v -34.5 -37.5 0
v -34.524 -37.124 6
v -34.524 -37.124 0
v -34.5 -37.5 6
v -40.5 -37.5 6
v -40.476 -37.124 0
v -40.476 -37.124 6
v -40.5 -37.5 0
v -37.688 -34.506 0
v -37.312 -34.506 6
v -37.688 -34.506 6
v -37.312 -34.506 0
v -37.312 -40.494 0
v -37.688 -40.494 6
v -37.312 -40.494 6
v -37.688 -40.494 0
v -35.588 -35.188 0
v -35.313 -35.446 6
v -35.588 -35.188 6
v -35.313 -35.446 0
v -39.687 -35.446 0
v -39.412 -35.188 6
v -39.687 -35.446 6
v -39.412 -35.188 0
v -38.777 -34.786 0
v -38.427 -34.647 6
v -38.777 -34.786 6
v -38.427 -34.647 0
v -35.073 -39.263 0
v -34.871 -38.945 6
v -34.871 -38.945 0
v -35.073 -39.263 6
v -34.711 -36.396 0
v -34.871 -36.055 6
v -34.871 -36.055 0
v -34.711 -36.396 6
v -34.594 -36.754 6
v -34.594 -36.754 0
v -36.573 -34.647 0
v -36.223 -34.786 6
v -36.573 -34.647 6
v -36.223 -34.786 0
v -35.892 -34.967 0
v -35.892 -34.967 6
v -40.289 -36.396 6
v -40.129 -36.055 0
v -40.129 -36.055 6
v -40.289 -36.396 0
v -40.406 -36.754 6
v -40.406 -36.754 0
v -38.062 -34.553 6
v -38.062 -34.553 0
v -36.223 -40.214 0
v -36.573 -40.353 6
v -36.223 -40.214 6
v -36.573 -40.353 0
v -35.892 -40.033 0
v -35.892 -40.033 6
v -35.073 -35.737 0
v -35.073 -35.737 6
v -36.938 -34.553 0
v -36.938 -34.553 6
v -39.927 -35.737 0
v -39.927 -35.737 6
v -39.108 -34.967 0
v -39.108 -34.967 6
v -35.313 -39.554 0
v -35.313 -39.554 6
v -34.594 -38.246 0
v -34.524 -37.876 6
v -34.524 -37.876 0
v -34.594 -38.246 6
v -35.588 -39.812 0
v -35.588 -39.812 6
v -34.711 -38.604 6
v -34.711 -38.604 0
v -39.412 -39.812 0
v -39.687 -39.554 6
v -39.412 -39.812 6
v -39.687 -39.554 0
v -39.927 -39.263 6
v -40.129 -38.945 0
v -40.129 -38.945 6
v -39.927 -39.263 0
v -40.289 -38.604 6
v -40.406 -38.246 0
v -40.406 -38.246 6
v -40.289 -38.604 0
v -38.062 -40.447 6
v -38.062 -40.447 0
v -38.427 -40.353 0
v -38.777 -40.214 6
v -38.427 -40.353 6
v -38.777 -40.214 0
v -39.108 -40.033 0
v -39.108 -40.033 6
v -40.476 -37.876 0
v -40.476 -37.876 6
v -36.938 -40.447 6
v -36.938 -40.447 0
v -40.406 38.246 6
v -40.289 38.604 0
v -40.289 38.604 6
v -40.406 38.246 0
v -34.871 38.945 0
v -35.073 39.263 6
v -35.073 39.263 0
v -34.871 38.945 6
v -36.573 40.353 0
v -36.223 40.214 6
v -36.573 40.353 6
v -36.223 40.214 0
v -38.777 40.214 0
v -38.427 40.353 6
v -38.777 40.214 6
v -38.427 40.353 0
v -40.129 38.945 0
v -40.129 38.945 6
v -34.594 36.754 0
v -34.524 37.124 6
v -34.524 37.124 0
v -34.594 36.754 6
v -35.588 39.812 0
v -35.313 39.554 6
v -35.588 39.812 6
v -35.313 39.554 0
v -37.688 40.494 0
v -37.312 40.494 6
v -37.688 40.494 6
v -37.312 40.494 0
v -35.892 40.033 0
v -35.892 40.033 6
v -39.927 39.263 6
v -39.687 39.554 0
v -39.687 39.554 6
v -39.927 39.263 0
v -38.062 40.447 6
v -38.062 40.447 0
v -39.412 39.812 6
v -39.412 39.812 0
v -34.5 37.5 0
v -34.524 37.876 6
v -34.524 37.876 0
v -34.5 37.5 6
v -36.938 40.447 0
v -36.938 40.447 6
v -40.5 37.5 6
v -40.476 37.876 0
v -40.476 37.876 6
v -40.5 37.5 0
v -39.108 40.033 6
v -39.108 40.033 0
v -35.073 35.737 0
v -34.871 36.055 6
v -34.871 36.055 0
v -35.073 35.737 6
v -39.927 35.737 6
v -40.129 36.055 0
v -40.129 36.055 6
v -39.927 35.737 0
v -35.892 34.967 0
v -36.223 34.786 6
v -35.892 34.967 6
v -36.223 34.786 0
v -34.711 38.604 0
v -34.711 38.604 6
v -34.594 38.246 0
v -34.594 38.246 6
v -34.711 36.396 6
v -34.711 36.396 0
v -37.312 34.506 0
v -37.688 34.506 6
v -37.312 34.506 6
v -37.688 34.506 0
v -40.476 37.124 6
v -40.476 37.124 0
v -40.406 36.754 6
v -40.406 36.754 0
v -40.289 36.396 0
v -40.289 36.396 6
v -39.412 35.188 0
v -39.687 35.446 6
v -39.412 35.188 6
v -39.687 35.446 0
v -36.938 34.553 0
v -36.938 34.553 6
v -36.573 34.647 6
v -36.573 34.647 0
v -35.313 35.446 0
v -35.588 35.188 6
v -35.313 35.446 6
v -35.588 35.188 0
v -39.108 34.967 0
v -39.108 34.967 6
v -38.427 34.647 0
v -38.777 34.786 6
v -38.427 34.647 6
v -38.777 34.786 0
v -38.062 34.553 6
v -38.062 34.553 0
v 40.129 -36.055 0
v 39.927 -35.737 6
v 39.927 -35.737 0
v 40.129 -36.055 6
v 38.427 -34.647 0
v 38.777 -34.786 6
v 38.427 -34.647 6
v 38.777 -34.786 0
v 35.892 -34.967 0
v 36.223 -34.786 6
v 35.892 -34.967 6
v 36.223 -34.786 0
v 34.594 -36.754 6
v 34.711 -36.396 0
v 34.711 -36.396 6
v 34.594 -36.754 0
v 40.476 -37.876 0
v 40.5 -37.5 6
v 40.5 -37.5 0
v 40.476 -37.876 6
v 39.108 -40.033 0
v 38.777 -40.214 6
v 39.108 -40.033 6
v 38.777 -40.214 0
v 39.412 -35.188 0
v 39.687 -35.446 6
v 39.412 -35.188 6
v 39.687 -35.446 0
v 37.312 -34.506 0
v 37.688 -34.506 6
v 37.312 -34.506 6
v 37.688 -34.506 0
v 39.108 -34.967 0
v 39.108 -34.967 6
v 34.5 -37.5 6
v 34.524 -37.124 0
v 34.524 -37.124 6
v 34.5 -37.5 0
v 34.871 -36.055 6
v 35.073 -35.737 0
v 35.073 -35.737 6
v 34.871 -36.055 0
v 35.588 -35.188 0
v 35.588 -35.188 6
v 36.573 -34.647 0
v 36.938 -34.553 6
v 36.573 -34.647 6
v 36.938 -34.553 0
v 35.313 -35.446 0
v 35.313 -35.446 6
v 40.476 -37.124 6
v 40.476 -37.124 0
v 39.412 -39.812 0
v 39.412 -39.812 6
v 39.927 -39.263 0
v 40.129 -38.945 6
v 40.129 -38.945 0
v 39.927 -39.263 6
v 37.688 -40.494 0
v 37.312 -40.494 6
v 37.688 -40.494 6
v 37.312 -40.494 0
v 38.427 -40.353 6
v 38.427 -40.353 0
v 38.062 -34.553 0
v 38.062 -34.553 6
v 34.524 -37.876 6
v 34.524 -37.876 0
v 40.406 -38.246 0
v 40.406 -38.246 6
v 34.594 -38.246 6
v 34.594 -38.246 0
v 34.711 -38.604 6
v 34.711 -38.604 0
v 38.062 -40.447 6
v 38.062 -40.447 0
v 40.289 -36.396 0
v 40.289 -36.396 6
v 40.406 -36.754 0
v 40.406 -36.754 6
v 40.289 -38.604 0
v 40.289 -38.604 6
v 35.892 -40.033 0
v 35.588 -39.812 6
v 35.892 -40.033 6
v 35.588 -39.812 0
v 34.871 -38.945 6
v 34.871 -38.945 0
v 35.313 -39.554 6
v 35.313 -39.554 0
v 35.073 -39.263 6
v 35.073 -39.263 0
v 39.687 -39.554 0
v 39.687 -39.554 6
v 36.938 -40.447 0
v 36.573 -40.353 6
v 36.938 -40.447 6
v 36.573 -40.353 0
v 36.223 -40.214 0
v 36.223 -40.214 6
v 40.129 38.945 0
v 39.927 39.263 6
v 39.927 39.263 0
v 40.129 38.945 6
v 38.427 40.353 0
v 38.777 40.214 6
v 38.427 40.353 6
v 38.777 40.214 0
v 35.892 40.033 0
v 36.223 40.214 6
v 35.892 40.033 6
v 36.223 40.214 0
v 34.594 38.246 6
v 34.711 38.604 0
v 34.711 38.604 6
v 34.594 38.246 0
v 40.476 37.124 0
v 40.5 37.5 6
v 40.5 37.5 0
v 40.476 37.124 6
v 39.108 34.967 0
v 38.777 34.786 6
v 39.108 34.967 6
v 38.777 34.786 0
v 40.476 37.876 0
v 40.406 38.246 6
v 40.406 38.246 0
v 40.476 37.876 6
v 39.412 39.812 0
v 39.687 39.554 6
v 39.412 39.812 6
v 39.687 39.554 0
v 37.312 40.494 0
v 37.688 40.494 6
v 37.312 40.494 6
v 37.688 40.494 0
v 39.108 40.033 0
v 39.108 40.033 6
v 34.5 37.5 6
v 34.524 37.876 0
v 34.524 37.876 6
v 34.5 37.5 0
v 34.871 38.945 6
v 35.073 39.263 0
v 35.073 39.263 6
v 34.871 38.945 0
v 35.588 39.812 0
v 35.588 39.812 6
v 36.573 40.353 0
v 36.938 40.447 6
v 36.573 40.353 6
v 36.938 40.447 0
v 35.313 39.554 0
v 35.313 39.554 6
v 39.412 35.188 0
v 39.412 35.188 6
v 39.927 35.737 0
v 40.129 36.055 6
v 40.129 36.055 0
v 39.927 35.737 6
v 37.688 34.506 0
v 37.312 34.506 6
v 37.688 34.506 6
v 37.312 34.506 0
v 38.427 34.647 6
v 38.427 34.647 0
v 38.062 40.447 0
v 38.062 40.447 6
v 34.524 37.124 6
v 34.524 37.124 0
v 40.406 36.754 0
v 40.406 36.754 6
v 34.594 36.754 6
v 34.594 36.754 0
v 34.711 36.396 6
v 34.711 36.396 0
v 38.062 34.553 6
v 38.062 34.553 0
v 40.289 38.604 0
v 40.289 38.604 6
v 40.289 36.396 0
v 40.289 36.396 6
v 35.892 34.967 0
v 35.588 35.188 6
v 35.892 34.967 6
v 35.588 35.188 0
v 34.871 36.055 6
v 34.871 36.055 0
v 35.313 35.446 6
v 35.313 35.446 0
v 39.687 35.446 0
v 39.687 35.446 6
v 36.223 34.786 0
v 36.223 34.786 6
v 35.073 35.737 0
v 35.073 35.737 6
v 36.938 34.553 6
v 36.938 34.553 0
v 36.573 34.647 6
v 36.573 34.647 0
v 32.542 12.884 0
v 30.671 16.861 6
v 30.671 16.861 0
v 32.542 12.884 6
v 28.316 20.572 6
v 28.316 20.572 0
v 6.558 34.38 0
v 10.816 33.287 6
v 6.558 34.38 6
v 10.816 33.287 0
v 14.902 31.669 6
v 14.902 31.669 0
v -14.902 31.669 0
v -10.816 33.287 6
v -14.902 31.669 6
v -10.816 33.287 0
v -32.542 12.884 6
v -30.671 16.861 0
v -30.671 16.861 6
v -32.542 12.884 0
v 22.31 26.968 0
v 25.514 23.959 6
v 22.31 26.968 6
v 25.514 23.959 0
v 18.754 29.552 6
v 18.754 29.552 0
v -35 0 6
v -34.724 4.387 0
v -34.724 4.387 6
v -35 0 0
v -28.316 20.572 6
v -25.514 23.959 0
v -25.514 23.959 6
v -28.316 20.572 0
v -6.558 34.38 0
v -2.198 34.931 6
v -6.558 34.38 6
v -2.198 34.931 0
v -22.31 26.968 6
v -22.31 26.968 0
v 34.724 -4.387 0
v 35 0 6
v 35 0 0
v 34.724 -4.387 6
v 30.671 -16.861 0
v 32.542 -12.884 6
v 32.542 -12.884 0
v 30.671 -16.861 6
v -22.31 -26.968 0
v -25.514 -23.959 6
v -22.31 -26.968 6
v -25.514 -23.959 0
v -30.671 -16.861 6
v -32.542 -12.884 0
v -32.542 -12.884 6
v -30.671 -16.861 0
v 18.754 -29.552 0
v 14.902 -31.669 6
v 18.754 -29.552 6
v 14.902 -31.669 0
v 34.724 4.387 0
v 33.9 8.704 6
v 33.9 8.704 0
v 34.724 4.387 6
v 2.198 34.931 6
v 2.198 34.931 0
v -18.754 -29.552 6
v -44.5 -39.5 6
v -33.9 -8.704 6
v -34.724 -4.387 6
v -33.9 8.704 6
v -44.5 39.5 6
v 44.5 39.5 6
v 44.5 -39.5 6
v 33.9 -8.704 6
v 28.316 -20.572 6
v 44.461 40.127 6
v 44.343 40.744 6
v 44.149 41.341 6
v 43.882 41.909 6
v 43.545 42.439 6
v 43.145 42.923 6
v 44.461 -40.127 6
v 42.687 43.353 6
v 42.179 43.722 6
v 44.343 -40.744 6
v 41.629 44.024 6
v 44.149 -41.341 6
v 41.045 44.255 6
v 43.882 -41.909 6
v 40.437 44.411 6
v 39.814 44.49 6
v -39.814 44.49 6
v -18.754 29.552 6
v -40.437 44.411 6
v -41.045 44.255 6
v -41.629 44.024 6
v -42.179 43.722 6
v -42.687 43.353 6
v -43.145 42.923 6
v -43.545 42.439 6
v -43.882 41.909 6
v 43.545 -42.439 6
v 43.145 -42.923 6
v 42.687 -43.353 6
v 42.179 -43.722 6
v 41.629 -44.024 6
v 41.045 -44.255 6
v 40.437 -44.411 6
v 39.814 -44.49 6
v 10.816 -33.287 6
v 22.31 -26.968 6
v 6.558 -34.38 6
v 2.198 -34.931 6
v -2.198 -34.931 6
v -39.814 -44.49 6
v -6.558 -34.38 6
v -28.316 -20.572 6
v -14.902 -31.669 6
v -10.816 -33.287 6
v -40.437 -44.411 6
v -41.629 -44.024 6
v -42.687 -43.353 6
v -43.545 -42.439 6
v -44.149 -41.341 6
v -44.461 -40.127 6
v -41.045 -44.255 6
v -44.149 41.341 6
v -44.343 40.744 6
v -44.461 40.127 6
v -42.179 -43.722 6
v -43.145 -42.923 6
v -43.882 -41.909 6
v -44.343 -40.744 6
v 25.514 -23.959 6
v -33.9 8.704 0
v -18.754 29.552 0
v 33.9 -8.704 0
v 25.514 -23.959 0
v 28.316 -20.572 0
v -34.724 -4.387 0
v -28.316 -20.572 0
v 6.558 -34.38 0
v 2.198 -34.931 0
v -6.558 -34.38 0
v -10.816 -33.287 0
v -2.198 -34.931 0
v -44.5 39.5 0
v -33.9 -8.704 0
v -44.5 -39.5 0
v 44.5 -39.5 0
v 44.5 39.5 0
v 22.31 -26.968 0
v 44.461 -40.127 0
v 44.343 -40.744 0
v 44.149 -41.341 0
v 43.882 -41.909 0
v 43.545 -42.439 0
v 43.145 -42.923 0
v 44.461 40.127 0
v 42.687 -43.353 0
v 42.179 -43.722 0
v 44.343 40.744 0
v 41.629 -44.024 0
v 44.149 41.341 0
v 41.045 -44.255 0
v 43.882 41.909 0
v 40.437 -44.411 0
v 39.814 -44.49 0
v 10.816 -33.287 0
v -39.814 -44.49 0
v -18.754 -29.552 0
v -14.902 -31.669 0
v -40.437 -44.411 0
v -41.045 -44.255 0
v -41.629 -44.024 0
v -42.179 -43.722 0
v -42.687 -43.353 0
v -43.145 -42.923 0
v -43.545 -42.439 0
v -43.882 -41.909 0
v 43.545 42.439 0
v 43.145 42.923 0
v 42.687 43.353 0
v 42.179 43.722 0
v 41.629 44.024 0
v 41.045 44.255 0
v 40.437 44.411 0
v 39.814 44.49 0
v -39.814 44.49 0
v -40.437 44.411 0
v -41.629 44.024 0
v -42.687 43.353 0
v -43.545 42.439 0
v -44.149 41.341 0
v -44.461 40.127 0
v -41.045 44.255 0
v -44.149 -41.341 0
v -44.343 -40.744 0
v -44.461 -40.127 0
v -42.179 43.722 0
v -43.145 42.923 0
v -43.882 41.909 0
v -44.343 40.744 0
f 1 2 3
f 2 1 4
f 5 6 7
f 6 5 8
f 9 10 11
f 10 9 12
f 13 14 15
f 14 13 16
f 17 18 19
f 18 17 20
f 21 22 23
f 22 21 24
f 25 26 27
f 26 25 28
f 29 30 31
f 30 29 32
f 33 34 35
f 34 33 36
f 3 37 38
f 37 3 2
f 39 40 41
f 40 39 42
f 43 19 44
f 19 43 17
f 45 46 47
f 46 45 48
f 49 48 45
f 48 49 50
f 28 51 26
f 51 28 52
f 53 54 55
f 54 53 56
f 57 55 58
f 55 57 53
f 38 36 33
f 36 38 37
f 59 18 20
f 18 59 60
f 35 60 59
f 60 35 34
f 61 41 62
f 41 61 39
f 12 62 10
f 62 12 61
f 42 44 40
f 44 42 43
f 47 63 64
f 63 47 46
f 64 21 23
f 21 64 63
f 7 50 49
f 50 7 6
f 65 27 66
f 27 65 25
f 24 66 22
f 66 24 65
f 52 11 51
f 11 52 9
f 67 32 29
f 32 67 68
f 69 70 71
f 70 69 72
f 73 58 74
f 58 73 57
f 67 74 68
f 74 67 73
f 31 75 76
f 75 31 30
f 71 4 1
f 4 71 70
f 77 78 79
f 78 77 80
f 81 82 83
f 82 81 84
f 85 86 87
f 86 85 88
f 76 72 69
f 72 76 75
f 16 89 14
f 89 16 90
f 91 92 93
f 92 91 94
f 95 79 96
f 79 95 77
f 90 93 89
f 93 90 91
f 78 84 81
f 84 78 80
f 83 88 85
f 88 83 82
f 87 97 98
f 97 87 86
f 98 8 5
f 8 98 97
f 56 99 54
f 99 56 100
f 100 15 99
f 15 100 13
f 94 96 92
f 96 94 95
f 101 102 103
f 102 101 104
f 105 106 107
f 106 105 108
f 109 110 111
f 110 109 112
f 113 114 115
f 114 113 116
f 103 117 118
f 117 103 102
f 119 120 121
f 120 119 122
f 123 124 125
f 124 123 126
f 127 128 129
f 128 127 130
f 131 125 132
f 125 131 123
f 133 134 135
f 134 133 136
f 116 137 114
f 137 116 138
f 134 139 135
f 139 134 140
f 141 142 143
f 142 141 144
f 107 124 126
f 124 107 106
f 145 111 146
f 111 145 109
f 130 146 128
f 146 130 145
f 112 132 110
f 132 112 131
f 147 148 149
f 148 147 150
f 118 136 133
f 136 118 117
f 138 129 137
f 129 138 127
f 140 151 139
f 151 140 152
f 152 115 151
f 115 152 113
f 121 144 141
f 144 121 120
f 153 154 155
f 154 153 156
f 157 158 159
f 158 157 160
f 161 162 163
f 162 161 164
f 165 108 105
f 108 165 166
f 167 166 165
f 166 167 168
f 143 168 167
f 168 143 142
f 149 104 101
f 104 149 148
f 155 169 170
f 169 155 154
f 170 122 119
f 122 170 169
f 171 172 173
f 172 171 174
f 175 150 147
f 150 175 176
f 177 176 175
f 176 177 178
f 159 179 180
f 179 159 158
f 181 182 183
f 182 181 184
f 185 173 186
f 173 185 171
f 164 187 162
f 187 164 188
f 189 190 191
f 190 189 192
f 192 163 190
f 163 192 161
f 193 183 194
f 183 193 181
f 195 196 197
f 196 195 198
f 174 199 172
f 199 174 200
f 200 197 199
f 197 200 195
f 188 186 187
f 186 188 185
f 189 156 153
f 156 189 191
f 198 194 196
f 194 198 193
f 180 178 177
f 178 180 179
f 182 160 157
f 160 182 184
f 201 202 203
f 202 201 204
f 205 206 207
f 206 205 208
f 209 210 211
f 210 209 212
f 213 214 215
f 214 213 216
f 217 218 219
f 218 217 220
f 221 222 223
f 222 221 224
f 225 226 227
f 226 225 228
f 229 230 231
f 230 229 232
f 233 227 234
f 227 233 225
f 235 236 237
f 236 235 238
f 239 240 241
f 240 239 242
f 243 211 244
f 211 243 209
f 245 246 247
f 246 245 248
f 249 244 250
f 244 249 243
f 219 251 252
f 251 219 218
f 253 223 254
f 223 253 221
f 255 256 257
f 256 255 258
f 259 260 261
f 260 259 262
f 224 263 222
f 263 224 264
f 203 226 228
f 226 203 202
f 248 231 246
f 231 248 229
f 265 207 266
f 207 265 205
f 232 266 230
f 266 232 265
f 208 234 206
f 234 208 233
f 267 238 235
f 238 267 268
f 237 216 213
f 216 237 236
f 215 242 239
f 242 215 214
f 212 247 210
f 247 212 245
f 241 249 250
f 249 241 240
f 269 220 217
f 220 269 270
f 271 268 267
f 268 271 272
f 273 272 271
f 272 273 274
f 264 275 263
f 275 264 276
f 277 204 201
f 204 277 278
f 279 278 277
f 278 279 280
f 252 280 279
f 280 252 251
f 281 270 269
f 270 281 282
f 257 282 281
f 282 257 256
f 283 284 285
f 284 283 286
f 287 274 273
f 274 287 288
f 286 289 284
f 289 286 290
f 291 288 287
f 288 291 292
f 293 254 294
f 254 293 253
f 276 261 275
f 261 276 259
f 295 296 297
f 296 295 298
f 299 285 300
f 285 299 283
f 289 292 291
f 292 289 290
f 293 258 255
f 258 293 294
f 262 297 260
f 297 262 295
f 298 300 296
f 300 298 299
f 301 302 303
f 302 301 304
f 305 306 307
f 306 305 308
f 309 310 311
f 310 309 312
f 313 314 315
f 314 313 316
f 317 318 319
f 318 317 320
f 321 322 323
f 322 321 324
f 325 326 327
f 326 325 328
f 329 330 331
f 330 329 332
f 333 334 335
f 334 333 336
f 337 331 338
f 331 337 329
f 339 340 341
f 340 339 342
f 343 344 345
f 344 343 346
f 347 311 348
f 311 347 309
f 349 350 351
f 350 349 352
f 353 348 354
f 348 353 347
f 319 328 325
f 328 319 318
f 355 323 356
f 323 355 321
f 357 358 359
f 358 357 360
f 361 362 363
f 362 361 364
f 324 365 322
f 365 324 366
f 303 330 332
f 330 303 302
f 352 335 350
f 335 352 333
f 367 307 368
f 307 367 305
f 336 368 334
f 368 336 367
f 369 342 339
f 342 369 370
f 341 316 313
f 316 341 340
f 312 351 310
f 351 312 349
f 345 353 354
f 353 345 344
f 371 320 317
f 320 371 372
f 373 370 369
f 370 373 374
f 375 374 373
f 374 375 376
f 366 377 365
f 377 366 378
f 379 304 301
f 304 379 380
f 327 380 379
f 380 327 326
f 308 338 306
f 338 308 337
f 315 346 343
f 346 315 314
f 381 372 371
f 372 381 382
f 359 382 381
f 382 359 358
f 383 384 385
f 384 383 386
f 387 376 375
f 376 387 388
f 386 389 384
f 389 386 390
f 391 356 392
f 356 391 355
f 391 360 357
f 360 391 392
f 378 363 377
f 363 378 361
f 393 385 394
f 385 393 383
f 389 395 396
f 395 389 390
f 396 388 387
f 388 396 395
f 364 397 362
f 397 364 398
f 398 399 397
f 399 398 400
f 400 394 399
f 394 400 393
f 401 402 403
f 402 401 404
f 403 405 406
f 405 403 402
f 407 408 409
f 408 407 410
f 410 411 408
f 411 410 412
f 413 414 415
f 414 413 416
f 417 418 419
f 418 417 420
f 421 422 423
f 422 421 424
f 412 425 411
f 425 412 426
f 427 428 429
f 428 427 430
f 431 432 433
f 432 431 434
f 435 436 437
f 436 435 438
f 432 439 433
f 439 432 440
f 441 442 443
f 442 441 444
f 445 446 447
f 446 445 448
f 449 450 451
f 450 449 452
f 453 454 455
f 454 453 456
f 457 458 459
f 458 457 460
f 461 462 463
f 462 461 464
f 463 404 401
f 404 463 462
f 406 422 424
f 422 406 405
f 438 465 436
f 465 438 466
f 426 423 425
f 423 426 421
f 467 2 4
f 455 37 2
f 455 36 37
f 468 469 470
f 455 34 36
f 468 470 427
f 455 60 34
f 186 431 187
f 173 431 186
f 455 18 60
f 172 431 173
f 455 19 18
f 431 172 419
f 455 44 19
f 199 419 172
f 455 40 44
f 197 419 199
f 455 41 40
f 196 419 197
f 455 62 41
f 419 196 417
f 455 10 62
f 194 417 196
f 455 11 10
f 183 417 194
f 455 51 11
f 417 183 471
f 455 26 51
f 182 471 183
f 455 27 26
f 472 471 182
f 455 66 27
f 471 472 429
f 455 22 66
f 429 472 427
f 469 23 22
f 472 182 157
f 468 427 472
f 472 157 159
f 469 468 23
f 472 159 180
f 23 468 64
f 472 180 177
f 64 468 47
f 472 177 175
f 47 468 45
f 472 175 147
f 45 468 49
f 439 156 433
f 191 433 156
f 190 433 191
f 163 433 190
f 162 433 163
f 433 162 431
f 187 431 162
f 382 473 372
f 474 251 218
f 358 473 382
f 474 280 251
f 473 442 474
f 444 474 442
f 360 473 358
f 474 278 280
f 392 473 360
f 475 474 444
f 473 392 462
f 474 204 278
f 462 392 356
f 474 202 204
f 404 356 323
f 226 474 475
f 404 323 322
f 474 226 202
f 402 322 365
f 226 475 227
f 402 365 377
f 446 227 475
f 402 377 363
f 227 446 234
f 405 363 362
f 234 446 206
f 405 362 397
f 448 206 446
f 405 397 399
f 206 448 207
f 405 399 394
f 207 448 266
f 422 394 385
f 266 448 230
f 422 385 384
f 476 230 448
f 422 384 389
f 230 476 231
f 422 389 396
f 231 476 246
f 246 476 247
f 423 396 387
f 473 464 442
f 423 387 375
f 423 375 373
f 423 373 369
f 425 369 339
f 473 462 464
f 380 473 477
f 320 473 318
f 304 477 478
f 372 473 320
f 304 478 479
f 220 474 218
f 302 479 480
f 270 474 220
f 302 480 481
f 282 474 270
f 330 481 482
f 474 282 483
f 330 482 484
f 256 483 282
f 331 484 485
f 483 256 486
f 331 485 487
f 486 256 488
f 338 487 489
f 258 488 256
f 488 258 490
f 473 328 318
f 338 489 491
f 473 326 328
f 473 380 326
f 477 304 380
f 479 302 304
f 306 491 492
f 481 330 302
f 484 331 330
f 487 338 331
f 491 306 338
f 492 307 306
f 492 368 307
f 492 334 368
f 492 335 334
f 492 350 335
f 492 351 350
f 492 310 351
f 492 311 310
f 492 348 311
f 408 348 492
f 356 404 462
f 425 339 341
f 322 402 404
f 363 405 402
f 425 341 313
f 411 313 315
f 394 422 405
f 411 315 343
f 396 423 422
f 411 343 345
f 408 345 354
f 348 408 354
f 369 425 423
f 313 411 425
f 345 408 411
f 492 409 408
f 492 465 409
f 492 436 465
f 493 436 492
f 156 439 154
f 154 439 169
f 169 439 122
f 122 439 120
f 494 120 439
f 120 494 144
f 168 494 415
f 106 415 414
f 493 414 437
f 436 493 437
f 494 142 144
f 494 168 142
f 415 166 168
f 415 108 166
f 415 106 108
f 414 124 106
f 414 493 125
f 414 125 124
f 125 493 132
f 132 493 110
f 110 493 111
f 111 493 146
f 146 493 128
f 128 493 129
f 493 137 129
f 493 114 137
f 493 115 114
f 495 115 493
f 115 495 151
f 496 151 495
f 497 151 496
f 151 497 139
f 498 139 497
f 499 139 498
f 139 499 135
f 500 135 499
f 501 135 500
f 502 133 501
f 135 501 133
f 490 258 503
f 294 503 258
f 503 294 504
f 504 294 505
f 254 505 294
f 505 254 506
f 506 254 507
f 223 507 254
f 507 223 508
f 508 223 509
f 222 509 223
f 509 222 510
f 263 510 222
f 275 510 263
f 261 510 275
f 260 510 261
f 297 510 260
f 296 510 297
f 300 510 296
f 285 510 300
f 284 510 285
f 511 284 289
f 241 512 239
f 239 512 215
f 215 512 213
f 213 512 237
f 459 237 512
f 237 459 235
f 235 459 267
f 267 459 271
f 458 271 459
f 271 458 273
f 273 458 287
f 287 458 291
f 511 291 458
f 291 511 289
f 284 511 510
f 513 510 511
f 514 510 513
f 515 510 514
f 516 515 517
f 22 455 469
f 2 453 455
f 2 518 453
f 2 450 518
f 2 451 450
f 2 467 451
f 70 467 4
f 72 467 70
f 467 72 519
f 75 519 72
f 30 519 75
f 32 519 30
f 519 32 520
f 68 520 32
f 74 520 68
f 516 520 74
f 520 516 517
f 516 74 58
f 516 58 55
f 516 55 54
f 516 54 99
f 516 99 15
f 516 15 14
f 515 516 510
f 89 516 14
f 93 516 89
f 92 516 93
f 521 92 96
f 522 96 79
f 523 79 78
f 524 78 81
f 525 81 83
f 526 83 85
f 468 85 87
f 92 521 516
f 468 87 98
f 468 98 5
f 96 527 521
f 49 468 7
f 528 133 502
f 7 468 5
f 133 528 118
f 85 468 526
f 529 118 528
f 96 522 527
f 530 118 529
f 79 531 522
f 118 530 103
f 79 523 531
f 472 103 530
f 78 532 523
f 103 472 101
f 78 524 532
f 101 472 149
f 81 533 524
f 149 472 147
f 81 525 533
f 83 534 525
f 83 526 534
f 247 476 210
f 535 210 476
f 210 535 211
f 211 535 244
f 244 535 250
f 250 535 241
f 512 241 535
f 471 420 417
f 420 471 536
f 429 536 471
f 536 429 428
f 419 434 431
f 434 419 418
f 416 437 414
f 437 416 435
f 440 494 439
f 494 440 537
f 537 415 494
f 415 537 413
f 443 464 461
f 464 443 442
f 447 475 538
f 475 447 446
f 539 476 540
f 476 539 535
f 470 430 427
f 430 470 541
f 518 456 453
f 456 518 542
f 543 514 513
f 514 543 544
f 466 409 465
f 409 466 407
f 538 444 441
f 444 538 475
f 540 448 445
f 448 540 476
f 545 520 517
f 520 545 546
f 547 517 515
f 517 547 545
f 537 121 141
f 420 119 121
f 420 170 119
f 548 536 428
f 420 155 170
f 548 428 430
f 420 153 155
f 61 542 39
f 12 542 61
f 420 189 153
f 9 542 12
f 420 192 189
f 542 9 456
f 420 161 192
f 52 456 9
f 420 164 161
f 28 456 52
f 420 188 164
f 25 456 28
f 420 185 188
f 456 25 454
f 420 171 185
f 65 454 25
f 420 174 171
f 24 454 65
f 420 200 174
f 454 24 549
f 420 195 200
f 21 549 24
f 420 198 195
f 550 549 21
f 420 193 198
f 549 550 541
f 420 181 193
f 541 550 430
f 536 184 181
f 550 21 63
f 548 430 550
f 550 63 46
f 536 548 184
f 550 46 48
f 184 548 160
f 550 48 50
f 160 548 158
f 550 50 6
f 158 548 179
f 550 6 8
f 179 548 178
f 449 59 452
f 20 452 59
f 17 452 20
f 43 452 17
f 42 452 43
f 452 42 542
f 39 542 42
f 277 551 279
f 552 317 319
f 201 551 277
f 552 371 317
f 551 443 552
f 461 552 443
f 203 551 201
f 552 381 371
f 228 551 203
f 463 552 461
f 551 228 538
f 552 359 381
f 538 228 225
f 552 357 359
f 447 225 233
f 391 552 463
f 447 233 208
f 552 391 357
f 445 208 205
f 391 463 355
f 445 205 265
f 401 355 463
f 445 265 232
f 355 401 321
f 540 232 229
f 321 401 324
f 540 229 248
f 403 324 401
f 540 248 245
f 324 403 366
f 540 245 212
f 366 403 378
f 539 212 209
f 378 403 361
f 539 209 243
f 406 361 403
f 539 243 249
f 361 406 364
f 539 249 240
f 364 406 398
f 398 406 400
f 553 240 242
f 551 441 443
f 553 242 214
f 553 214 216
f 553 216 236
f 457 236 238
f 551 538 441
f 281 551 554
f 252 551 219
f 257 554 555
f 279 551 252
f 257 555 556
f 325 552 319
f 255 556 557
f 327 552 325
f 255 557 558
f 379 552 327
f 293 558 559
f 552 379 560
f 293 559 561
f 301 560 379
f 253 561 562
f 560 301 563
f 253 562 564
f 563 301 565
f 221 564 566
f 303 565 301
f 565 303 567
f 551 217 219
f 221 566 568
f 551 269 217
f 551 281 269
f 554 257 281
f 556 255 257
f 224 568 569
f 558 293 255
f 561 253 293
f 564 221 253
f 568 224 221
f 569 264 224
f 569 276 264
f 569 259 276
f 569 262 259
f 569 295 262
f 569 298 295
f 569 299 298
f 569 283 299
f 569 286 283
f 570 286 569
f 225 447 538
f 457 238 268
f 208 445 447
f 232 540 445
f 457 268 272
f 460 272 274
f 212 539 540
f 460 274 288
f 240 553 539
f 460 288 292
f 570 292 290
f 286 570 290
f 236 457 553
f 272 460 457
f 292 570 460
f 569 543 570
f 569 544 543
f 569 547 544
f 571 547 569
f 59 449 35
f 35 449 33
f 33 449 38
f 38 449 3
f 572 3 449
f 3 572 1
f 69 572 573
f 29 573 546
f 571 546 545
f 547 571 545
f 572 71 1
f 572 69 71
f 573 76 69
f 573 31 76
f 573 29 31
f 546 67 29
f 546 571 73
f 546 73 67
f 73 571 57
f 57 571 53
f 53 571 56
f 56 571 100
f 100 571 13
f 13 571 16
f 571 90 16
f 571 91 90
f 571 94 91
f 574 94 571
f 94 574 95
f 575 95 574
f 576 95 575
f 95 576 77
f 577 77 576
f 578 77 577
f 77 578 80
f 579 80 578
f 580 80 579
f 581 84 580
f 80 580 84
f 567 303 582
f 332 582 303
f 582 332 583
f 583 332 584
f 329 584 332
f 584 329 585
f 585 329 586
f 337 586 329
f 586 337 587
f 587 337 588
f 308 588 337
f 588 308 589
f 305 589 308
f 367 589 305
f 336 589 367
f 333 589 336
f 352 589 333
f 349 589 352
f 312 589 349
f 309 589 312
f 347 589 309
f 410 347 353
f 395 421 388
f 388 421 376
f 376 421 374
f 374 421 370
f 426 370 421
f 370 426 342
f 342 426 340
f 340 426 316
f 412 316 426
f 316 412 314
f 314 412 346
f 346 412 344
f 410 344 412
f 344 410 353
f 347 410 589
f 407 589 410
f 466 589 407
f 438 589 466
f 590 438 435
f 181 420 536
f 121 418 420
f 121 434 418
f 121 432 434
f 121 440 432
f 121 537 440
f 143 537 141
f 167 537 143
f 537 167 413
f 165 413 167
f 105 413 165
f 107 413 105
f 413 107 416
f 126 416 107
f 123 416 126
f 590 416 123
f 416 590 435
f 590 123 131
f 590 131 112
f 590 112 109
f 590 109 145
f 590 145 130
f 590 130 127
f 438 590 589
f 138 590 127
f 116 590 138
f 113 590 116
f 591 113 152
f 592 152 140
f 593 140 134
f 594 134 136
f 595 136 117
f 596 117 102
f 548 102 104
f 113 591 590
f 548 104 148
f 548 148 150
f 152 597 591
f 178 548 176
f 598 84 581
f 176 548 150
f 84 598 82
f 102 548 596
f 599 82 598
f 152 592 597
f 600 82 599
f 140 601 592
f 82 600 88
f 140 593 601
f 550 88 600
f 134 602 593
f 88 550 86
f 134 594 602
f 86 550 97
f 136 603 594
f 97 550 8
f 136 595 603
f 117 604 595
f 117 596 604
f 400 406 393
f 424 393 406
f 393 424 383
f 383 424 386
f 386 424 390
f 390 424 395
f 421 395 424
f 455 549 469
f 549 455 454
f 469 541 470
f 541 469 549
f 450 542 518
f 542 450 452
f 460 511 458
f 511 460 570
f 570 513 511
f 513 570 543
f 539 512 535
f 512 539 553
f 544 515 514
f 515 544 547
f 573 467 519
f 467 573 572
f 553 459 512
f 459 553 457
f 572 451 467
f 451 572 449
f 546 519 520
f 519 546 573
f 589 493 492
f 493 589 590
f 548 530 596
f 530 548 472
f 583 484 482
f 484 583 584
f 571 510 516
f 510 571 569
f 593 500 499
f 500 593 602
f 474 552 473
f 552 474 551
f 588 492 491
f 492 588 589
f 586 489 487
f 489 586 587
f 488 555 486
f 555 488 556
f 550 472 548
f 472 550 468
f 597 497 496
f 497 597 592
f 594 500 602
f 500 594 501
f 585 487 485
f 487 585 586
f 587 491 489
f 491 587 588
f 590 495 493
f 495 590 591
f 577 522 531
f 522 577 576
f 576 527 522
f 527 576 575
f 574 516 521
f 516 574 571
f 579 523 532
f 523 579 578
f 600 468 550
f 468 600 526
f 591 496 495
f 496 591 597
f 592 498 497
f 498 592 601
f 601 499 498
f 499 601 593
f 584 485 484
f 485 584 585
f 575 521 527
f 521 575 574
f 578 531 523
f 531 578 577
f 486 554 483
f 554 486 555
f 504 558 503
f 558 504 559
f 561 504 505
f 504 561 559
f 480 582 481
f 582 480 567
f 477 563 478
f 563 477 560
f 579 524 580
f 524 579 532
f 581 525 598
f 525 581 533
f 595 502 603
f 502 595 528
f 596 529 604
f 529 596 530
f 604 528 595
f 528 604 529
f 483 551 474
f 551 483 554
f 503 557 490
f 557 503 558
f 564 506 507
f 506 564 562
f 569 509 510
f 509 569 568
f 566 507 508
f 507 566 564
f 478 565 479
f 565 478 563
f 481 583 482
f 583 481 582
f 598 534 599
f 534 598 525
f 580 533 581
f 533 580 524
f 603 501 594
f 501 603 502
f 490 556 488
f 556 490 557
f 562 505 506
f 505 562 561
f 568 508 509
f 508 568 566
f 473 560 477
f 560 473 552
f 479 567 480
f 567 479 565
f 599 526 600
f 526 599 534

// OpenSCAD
$fn = 50;


difference() {
	union() {
		hull() {
			translate(v = [-39.5000000000, 39.5000000000, 0]) {
				cylinder(h = 6, r = 5);
			}
			translate(v = [39.5000000000, 39.5000000000, 0]) {
				cylinder(h = 6, r = 5);
			}
			translate(v = [-39.5000000000, -39.5000000000, 0]) {
				cylinder(h = 6, r = 5);
			}
			translate(v = [39.5000000000, -39.5000000000, 0]) {
				cylinder(h = 6, r = 5);
			}
		}
	}
	union() {
		#translate(v = [-37.5000000000, -37.5000000000, -100.0000000000]) {
			cylinder(h = 200, r = 3.0000000000);
		}
		#translate(v = [-37.5000000000, 37.5000000000, -100.0000000000]) {
			cylinder(h = 200, r = 3.0000000000);
		}
		#translate(v = [37.5000000000, -37.5000000000, -100.0000000000]) {
			cylinder(h = 200, r = 3.0000000000);
		}
		#translate(v = [37.5000000000, 37.5000000000, -100.0000000000]) {
			cylinder(h = 200, r = 3.0000000000);
		}
		#cylinder(h = 6, r = 35.0000000000);
	}
}
